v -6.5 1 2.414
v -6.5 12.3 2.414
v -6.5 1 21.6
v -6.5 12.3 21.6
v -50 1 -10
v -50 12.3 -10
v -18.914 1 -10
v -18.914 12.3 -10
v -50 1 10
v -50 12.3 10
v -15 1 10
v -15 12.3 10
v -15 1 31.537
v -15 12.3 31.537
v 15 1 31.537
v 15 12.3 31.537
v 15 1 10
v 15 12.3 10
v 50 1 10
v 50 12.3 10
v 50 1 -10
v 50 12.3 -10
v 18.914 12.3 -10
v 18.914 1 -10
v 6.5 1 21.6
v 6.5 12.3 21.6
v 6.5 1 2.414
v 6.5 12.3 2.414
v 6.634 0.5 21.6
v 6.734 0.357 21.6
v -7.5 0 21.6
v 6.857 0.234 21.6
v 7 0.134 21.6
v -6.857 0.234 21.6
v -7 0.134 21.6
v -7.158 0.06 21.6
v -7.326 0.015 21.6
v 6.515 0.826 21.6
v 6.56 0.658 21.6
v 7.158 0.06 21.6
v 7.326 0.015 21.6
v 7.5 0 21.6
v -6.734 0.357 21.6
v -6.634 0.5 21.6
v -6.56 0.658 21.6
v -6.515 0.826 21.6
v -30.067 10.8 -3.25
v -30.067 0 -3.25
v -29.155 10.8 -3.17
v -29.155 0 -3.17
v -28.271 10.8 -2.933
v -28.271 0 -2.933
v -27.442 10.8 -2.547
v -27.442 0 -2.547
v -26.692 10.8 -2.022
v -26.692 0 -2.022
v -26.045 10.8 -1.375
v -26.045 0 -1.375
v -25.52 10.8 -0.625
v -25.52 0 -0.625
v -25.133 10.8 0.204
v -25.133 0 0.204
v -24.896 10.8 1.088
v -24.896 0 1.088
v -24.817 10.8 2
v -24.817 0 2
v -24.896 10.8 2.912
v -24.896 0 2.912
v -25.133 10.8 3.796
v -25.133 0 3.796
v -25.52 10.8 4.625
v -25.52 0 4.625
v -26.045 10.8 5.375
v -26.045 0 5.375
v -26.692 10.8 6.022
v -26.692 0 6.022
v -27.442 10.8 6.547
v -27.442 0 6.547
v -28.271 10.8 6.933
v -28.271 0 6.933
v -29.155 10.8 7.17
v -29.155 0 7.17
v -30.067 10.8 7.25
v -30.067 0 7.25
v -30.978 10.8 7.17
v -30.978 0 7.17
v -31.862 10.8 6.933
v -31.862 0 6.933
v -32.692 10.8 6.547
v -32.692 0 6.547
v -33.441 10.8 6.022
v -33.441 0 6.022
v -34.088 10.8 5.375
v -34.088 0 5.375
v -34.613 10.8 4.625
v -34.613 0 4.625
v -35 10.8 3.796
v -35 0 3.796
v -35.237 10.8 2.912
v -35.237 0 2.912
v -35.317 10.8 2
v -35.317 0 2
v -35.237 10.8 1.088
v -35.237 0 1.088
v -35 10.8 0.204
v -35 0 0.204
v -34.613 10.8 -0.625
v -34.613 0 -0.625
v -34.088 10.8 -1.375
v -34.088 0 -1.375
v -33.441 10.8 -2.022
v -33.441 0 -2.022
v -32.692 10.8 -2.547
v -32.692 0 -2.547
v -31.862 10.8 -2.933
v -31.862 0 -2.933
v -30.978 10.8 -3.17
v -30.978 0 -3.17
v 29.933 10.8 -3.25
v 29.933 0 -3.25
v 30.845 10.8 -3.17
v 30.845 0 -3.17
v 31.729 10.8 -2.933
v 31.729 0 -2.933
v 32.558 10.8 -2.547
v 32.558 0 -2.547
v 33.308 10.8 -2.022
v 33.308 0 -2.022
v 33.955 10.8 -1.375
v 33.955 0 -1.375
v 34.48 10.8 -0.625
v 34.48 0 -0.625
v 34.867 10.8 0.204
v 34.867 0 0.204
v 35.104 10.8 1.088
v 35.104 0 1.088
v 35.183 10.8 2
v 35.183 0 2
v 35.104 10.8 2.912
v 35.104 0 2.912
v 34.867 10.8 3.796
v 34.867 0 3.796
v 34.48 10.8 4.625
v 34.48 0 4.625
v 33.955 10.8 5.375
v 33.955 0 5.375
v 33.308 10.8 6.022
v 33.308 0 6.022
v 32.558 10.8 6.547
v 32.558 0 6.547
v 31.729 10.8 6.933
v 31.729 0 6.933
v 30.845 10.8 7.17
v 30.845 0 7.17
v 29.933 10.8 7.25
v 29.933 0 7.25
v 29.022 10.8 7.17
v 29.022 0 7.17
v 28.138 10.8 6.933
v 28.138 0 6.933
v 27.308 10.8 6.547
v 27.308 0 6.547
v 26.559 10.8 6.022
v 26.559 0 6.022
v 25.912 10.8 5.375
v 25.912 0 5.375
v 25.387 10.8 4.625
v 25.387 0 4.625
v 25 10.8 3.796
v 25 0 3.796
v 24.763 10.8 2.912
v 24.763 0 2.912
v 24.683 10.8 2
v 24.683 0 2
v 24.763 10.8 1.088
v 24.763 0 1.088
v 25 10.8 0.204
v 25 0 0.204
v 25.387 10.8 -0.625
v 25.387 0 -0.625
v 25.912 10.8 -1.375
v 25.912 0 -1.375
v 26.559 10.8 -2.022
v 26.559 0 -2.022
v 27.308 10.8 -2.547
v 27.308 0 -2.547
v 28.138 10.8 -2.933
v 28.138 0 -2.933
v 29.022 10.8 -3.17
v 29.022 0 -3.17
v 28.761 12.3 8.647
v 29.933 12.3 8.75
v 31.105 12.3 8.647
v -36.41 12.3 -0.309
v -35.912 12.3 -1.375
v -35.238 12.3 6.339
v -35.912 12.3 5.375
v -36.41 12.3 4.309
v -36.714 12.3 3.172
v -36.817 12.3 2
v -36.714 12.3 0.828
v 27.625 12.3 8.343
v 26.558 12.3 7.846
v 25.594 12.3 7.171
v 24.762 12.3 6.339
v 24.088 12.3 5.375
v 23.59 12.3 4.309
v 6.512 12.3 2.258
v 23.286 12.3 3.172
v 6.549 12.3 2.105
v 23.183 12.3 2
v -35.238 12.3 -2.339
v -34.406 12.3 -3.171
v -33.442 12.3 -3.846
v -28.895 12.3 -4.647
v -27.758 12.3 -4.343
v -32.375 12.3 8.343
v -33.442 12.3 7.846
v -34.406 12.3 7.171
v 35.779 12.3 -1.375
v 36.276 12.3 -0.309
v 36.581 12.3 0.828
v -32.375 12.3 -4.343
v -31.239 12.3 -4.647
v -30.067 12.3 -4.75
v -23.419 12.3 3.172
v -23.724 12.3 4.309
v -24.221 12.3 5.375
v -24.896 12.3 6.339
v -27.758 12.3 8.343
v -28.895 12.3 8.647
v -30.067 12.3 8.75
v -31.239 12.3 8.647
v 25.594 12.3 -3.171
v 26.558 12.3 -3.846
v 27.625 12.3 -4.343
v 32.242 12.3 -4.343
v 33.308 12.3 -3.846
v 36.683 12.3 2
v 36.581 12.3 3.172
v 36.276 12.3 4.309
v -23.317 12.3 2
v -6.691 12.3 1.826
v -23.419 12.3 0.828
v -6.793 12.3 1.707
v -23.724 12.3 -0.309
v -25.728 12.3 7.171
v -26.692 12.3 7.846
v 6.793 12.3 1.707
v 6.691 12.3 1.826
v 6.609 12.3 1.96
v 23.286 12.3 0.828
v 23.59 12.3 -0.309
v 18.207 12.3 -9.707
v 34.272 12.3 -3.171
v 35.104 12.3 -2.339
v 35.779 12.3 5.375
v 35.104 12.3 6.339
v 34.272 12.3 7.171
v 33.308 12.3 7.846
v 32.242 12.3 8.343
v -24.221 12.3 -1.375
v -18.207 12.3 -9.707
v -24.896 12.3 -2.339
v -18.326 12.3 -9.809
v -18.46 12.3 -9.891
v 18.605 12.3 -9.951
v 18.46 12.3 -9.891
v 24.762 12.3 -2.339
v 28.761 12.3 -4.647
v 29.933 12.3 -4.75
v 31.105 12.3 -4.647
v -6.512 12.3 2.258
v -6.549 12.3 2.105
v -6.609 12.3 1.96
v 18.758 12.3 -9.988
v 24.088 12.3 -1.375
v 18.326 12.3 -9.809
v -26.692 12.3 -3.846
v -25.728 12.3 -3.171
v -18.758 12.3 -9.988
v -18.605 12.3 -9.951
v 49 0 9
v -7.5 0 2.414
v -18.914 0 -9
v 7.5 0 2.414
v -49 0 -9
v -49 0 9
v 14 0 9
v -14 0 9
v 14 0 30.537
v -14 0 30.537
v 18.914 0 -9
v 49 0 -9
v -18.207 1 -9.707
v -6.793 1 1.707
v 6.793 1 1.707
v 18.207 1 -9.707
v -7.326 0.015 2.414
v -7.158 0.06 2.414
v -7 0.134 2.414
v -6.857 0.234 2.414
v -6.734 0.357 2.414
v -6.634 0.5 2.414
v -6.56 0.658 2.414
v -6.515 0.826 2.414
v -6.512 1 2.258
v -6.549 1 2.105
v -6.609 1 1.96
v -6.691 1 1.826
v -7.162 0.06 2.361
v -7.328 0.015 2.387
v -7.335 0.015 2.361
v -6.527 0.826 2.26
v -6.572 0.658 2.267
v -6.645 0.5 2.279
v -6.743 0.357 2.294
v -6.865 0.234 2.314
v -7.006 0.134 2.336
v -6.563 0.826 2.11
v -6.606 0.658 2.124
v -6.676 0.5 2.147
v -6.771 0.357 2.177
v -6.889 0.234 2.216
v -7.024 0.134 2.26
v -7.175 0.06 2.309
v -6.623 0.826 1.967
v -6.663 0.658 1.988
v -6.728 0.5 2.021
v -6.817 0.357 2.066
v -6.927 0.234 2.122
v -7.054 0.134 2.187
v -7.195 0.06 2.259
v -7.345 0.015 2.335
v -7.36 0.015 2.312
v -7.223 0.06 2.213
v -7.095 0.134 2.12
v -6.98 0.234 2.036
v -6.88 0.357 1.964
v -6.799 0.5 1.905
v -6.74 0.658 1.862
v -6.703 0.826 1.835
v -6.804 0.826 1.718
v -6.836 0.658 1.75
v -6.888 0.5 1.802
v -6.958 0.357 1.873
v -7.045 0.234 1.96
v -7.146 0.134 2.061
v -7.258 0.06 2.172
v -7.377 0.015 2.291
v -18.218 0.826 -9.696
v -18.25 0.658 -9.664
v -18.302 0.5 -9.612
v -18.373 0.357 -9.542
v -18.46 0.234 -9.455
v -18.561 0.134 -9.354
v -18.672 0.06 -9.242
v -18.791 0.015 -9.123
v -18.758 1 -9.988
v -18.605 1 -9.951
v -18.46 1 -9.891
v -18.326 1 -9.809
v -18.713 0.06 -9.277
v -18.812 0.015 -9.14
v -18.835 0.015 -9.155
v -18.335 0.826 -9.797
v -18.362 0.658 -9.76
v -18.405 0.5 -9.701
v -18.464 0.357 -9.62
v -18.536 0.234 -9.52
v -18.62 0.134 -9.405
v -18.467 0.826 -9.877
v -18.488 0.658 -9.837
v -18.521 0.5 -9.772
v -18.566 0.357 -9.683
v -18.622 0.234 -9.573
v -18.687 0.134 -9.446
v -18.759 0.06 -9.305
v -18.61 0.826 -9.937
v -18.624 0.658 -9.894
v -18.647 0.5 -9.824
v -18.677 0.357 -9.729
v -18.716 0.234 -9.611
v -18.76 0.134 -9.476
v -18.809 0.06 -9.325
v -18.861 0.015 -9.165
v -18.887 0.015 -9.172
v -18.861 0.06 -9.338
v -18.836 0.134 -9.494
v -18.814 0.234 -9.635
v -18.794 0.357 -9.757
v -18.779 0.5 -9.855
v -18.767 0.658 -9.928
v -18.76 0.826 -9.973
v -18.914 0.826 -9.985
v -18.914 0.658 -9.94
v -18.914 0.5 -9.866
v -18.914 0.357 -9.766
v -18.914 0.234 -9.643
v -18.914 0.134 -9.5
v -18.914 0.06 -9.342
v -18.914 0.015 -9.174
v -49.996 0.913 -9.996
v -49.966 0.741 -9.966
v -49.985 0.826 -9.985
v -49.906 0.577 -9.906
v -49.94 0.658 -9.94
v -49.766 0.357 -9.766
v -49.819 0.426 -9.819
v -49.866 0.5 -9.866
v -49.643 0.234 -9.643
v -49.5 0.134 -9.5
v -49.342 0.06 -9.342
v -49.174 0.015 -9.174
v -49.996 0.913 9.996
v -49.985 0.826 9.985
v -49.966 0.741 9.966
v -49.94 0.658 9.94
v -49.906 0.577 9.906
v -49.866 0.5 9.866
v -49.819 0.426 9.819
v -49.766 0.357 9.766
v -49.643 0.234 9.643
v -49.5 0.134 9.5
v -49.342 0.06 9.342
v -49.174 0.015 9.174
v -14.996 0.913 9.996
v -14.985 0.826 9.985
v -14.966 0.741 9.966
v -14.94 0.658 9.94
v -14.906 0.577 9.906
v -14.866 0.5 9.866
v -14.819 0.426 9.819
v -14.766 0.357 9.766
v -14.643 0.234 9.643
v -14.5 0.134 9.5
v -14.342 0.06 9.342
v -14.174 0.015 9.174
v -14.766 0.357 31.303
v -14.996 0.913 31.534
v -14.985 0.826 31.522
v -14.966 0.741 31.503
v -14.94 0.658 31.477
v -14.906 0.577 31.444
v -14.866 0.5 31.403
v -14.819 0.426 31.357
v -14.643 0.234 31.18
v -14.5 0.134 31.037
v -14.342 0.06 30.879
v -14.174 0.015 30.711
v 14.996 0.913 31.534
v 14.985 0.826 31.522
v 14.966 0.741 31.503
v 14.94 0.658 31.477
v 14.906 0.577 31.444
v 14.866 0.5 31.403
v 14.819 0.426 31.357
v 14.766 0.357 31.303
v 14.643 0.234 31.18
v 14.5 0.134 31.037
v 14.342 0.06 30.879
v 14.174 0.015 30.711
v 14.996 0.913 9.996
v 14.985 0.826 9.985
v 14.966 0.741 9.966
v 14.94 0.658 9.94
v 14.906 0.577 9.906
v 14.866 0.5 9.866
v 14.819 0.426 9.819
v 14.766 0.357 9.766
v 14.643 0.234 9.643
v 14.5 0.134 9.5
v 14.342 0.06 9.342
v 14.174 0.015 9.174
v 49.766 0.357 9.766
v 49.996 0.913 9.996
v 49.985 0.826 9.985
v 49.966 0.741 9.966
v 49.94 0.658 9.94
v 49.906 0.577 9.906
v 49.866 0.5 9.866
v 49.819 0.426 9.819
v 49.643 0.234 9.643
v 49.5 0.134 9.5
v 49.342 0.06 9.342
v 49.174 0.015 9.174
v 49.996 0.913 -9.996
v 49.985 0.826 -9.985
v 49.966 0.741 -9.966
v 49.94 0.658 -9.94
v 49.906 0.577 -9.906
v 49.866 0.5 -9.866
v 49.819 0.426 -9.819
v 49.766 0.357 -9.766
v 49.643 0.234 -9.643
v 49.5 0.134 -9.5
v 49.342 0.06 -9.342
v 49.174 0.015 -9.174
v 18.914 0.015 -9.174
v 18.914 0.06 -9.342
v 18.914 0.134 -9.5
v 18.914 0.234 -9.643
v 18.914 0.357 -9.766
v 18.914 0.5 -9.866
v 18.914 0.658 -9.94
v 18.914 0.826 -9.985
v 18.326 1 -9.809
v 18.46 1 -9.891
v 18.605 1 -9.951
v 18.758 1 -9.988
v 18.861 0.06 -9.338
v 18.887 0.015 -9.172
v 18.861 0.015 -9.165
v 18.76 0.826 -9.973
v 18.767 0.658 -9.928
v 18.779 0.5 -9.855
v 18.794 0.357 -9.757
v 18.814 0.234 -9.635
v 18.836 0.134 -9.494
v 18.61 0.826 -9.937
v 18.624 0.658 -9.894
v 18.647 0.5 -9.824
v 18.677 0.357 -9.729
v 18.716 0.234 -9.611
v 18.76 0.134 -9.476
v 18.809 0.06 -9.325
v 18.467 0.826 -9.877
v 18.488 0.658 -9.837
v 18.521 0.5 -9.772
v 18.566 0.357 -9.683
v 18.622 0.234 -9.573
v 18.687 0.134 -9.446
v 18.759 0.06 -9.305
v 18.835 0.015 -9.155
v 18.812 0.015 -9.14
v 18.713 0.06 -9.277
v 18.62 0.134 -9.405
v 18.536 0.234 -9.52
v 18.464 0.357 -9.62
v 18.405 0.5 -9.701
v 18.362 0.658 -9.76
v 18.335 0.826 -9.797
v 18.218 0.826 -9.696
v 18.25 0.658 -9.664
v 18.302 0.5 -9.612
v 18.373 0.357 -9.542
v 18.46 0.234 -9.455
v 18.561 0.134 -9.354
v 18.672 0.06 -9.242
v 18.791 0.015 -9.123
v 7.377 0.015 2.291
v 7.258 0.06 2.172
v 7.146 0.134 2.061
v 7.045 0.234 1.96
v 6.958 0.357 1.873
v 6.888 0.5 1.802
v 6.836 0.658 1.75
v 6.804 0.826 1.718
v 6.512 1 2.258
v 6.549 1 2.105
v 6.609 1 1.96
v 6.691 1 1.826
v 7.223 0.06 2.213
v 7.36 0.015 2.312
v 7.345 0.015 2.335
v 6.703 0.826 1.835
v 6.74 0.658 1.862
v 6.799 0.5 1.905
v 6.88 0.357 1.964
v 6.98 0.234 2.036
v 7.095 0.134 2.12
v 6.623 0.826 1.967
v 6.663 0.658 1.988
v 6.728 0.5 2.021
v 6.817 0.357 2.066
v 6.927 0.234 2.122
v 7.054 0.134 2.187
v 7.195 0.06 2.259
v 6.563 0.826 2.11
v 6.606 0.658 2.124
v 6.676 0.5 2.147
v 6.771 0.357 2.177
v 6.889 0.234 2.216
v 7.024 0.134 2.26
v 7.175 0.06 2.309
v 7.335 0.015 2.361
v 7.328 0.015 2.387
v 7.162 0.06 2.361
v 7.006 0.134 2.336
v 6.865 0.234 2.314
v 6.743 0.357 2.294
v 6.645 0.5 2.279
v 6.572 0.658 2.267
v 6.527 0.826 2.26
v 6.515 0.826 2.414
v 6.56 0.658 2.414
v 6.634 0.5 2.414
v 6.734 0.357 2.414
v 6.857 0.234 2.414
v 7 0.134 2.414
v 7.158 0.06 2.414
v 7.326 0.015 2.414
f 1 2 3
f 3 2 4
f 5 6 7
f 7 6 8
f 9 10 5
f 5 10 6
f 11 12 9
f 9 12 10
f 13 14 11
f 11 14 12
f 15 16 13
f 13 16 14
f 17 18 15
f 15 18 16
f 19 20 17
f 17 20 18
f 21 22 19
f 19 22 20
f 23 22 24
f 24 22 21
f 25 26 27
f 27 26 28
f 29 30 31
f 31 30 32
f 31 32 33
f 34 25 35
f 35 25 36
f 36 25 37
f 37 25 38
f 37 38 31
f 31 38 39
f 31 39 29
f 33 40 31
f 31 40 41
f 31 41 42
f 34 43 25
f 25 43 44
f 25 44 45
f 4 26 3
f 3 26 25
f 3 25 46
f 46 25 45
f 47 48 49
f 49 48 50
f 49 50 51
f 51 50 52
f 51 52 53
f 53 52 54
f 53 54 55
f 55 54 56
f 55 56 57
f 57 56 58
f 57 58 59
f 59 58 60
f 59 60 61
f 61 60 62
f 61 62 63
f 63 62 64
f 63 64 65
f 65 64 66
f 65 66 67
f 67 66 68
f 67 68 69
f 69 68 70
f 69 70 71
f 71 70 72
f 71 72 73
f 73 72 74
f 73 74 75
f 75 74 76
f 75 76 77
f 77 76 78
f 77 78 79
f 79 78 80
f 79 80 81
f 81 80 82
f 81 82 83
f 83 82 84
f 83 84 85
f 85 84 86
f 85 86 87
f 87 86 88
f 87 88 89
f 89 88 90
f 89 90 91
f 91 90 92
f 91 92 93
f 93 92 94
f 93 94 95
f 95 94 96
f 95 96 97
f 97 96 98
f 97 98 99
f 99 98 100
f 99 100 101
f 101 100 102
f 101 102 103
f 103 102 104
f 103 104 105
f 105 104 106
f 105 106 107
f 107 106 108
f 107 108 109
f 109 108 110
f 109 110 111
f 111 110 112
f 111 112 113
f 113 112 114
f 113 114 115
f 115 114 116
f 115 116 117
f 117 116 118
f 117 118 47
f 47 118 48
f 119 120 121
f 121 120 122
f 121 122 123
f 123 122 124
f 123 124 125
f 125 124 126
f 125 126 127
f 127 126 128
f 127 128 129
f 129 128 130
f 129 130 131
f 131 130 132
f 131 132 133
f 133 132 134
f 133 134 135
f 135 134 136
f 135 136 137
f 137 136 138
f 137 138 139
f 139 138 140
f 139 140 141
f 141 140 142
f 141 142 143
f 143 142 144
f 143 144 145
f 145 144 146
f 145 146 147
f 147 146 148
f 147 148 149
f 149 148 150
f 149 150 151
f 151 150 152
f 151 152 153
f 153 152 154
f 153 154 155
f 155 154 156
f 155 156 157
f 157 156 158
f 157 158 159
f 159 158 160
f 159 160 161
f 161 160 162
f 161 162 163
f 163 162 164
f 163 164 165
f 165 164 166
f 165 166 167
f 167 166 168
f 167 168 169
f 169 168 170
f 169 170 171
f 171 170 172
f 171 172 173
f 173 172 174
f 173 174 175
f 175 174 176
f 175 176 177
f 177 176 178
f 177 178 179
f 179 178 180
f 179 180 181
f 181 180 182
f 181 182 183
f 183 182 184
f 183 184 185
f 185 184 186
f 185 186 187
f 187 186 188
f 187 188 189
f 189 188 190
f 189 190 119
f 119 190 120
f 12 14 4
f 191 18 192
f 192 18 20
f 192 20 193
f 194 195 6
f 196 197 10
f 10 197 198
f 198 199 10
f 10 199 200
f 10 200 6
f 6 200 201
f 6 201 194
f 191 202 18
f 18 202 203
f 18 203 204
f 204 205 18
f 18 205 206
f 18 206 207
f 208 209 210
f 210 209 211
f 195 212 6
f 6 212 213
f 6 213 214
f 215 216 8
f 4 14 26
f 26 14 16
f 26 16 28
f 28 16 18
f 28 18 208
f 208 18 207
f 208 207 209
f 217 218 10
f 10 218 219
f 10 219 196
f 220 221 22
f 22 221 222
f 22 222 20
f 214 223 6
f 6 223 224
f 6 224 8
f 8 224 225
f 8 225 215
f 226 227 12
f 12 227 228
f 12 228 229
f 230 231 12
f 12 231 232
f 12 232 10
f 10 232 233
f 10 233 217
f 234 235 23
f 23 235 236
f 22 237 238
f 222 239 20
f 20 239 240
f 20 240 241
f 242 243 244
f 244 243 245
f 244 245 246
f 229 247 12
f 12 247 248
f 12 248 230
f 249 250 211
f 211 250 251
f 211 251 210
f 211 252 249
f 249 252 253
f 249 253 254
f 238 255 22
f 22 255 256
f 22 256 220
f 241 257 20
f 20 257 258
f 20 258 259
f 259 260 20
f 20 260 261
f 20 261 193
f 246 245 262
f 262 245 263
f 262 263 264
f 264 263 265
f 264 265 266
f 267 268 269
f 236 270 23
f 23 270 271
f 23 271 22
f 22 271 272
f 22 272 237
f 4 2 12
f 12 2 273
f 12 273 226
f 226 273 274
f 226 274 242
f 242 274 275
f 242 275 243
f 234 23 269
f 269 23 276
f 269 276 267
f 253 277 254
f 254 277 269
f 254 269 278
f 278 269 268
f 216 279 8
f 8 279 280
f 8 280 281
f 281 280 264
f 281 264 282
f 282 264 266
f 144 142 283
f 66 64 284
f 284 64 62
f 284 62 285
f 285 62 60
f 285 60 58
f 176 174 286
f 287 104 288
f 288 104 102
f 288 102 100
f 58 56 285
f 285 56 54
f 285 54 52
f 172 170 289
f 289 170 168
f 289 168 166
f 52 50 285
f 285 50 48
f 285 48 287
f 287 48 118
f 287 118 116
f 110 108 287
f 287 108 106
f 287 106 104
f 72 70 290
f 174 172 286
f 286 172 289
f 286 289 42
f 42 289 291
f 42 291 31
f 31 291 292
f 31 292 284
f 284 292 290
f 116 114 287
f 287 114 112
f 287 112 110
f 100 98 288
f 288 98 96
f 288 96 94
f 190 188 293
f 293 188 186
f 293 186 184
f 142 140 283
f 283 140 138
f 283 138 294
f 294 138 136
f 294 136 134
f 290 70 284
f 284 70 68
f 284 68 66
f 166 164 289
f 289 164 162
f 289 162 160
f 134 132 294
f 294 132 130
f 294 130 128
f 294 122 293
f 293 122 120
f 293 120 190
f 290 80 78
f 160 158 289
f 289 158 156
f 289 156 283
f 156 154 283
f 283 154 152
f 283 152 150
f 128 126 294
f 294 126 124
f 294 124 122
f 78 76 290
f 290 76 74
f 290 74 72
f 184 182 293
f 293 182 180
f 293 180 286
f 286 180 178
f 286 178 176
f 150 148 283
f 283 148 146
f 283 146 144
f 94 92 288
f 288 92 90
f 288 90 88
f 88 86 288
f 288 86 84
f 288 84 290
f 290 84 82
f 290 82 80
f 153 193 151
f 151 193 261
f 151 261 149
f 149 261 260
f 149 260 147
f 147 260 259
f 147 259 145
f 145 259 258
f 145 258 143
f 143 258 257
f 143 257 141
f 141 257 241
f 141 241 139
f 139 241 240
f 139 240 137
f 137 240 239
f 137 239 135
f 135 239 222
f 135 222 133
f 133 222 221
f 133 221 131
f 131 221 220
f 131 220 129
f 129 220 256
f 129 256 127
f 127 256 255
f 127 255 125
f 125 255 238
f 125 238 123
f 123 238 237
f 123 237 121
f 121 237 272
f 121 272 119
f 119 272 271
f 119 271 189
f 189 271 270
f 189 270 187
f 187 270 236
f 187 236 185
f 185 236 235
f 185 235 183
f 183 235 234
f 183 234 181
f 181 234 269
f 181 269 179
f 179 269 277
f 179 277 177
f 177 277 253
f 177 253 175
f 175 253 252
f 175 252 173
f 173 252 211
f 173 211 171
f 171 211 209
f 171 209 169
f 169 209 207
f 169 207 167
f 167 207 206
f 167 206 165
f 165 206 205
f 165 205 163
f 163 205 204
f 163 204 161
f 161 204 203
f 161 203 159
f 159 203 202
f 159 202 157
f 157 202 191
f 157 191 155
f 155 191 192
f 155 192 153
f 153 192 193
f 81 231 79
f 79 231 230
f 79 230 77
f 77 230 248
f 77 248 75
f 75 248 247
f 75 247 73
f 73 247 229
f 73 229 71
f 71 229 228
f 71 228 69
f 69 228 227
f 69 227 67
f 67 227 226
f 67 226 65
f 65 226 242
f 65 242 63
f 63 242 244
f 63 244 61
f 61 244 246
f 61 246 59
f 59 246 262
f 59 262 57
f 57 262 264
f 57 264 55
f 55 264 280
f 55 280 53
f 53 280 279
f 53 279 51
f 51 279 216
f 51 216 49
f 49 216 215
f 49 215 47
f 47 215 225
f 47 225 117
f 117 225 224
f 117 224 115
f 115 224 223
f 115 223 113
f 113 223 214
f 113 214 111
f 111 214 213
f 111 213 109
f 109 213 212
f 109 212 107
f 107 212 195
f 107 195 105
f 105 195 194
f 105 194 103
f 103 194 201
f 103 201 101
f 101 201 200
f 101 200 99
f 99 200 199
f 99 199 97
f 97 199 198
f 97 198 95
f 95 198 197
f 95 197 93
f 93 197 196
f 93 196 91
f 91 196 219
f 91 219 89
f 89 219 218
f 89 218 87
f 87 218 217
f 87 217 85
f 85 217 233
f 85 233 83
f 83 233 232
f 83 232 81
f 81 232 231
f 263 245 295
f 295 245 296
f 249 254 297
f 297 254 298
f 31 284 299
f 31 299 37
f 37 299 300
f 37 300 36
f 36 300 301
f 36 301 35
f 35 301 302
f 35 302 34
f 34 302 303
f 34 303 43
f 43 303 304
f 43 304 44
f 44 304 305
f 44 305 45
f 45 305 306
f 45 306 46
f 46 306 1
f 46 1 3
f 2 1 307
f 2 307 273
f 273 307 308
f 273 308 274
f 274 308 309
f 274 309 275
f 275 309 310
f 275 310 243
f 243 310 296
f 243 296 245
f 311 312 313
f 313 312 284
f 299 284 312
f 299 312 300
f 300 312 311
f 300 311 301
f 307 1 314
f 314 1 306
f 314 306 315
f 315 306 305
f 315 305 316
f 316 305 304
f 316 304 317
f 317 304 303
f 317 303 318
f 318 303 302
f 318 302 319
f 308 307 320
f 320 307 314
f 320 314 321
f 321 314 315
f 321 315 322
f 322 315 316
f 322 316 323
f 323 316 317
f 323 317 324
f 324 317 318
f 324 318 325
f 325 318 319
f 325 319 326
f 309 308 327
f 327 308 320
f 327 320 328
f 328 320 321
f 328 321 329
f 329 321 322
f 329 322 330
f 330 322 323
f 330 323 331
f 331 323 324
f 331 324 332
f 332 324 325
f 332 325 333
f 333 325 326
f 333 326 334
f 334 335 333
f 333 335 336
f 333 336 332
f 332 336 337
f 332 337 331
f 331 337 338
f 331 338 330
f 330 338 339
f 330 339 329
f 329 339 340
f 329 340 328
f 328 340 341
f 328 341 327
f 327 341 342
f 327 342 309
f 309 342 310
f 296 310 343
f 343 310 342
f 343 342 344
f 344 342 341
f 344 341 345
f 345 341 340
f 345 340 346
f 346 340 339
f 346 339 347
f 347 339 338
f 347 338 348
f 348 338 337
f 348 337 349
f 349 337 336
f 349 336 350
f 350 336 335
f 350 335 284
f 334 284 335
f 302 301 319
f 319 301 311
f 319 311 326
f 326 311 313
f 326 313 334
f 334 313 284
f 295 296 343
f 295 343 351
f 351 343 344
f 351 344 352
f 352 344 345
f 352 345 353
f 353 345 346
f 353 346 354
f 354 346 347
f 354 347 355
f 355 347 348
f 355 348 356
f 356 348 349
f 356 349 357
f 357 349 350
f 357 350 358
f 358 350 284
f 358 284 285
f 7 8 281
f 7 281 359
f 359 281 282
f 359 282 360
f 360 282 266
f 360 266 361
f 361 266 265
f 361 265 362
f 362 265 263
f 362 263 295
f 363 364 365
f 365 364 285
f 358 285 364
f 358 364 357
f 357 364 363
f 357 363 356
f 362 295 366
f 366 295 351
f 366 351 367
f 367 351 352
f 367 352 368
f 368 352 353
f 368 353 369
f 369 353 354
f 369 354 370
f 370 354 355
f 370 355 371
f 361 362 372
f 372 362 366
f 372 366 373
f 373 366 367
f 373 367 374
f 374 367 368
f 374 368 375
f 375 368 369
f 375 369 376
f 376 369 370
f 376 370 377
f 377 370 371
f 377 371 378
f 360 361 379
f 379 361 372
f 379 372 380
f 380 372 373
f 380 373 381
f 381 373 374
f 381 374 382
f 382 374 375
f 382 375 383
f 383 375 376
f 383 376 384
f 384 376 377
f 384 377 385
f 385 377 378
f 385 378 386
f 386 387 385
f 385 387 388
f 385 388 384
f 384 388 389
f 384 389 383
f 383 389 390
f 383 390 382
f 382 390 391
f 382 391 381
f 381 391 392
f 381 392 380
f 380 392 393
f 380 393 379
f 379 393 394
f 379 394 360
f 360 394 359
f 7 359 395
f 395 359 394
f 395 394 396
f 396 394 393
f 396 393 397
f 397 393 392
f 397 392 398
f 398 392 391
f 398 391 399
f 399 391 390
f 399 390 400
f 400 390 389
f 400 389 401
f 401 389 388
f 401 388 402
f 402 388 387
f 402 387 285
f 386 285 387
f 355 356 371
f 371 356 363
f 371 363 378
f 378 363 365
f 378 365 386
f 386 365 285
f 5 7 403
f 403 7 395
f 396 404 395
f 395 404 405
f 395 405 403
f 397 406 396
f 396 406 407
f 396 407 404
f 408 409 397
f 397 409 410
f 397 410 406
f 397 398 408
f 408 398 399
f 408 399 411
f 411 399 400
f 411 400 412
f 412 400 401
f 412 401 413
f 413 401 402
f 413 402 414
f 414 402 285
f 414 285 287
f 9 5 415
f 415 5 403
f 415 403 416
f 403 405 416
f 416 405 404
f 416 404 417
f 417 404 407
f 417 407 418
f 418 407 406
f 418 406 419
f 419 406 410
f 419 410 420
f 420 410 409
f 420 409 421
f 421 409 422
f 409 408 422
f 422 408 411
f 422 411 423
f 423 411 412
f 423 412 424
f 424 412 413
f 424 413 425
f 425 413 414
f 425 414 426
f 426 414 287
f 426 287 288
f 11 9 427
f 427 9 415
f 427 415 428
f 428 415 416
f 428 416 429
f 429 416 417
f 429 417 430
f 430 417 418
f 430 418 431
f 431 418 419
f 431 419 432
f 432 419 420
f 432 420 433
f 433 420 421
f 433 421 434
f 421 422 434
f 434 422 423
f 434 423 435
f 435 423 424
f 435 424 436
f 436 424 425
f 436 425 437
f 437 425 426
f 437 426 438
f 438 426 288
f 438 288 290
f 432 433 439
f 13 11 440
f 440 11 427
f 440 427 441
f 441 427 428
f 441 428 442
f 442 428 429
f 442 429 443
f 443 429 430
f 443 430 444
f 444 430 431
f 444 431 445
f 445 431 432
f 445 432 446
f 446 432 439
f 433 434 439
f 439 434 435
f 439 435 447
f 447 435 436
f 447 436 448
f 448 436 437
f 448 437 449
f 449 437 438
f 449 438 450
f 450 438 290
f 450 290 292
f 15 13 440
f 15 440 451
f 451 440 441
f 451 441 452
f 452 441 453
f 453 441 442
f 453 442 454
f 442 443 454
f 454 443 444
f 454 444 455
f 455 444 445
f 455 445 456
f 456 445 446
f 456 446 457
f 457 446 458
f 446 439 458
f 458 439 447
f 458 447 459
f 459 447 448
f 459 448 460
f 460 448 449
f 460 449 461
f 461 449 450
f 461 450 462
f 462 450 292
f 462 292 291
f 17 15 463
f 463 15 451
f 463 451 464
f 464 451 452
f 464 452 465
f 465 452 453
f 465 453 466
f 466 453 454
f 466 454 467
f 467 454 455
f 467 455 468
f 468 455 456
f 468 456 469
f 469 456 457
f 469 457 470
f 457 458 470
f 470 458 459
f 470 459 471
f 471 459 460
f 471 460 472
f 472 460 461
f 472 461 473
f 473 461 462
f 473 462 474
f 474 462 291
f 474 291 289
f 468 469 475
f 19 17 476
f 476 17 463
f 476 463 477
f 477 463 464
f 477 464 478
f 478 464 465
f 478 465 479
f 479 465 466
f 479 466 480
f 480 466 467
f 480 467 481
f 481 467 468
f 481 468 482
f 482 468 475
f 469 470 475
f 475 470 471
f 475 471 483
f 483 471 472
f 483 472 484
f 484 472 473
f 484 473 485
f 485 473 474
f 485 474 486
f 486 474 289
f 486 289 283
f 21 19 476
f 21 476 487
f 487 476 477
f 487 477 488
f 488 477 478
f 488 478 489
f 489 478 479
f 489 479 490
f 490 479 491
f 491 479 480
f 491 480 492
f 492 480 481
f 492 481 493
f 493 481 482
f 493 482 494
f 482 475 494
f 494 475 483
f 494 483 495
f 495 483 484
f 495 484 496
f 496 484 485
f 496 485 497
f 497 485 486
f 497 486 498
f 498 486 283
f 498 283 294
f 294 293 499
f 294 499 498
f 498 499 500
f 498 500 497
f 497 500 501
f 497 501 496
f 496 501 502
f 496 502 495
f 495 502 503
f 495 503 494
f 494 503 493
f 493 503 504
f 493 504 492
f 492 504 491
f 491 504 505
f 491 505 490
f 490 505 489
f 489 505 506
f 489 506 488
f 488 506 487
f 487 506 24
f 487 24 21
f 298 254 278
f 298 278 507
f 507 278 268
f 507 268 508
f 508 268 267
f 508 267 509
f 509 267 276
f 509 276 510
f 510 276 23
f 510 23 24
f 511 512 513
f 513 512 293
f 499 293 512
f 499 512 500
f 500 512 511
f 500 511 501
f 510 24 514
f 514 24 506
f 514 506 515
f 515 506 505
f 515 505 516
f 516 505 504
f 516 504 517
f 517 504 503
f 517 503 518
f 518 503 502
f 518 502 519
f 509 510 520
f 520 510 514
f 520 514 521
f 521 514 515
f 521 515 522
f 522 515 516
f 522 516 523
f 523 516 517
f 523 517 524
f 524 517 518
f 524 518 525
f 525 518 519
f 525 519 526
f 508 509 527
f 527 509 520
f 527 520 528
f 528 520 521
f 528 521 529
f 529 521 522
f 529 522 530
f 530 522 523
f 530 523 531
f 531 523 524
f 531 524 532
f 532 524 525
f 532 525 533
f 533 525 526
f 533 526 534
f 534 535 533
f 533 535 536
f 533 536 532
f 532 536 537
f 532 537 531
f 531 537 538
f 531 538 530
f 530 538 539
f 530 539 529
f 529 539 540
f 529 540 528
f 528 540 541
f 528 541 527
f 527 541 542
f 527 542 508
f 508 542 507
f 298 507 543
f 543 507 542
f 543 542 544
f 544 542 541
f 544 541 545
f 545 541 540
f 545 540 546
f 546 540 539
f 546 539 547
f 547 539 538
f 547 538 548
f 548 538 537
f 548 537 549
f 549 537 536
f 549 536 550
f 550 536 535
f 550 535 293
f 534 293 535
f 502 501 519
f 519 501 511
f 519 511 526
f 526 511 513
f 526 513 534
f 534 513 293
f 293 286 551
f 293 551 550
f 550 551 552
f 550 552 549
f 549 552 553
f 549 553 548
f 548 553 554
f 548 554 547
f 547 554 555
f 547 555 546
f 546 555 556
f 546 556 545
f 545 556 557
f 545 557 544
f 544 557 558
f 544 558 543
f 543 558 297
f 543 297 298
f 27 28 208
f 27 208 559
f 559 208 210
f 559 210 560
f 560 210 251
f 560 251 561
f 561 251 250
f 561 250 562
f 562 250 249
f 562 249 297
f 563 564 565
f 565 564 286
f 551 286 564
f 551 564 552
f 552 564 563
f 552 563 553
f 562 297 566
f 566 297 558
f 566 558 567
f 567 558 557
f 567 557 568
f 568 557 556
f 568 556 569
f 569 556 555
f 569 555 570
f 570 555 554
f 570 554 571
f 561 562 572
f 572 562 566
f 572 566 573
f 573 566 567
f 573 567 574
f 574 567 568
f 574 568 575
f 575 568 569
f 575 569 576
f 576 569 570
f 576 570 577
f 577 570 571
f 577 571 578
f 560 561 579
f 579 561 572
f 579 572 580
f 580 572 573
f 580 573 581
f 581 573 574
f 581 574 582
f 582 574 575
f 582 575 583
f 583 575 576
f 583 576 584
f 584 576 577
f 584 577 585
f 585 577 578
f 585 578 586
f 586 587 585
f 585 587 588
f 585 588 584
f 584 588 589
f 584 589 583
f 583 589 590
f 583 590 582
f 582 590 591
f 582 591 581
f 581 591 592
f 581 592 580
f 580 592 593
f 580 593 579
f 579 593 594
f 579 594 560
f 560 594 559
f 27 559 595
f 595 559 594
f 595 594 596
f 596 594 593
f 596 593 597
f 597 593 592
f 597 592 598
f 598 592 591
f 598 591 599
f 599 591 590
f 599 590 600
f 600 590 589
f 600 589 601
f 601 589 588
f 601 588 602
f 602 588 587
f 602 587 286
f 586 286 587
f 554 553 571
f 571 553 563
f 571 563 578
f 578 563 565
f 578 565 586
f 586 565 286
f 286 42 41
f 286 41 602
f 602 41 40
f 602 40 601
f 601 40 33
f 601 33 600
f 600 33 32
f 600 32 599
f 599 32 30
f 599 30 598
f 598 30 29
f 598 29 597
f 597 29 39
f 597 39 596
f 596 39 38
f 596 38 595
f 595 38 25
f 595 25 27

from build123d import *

# Parameters (mm, degrees)
SKETCH2_R           = 5.25
BOSS_EXTRUDE1_DEPTH = 12.3
CHAMFER1_SIZE       = 1.5
CHAMFER2_SIZE       = 12
FILLET1_R           = 1


with BuildPart() as part:
    # Sketch2 → Boss-Extrude1 (new body)
    with BuildSketch(Plane(origin=(0, 0, 0), x_dir=(1, 0, 0), z_dir=(0, 1, 0))):
        Polygon((-50, 10), (-50, -10), (-15, -10), (-6.5, -10), (-6.5, 10), align=None)
        with Locations((-30.066740906, -2)):
            Circle(SKETCH2_R, mode=Mode.SUBTRACT)
        Polygon((-6.5, -10), (-15, -10), (-15, -31.53738907), (15, -31.53738907), (15, -10), (6.5, -10), (6.5, -21.6), (-6.5, -21.6), align=None)
        Polygon((6.5, 10), (6.5, -10), (15, -10), (50, -10), (50, 10), align=None)
        with Locations((29.933259094, -2)):
            Circle(SKETCH2_R, mode=Mode.SUBTRACT)
    extrude(amount=BOSS_EXTRUDE1_DEPTH)

    # Chamfer1
    chamfer1_edges = [part.edges().sort_by_distance(p)[0] for p in [
        (-35.316740906, 12.3, 2),
        (24.683259094, 12.3, 2),
    ]]
    chamfer(chamfer1_edges, length=CHAMFER1_SIZE)

    # Chamfer2
    chamfer2_edges = [part.edges().sort_by_distance(p)[0] for p in [
        (6.5, 6.15, -10),
        (-6.5, 6.15, -10),
    ]]
    chamfer(chamfer2_edges, length=CHAMFER2_SIZE)

    # Fillet1
    fillet1_edges = [part.edges().sort_by_distance(p)[0] for p in [
        (50, 0, 0),
        (32.5, 0, 10),
        (15, 0, 20.768694535),
        (0, 0, 31.53738907),
        (-15, 0, 20.768694535),
        (-32.5, 0, 10),
        (-50, 0, 0),
        (-34.25, 0, -10),
        (-18.5, 6.15, -10),
        (-6.5, 0, 11.8),
        (6.5, 0, 11.8),
        (34.25, 0, -10),
        (12.5, 0, -4),
        (-12.5, 0, -4),
        (-6.5, 6.15, 2),
        (6.5, 6.15, 2),
        (18.5, 6.15, -10),
    ]]
    fillet(fillet1_edges, radius=FILLET1_R)


solid = part.part
